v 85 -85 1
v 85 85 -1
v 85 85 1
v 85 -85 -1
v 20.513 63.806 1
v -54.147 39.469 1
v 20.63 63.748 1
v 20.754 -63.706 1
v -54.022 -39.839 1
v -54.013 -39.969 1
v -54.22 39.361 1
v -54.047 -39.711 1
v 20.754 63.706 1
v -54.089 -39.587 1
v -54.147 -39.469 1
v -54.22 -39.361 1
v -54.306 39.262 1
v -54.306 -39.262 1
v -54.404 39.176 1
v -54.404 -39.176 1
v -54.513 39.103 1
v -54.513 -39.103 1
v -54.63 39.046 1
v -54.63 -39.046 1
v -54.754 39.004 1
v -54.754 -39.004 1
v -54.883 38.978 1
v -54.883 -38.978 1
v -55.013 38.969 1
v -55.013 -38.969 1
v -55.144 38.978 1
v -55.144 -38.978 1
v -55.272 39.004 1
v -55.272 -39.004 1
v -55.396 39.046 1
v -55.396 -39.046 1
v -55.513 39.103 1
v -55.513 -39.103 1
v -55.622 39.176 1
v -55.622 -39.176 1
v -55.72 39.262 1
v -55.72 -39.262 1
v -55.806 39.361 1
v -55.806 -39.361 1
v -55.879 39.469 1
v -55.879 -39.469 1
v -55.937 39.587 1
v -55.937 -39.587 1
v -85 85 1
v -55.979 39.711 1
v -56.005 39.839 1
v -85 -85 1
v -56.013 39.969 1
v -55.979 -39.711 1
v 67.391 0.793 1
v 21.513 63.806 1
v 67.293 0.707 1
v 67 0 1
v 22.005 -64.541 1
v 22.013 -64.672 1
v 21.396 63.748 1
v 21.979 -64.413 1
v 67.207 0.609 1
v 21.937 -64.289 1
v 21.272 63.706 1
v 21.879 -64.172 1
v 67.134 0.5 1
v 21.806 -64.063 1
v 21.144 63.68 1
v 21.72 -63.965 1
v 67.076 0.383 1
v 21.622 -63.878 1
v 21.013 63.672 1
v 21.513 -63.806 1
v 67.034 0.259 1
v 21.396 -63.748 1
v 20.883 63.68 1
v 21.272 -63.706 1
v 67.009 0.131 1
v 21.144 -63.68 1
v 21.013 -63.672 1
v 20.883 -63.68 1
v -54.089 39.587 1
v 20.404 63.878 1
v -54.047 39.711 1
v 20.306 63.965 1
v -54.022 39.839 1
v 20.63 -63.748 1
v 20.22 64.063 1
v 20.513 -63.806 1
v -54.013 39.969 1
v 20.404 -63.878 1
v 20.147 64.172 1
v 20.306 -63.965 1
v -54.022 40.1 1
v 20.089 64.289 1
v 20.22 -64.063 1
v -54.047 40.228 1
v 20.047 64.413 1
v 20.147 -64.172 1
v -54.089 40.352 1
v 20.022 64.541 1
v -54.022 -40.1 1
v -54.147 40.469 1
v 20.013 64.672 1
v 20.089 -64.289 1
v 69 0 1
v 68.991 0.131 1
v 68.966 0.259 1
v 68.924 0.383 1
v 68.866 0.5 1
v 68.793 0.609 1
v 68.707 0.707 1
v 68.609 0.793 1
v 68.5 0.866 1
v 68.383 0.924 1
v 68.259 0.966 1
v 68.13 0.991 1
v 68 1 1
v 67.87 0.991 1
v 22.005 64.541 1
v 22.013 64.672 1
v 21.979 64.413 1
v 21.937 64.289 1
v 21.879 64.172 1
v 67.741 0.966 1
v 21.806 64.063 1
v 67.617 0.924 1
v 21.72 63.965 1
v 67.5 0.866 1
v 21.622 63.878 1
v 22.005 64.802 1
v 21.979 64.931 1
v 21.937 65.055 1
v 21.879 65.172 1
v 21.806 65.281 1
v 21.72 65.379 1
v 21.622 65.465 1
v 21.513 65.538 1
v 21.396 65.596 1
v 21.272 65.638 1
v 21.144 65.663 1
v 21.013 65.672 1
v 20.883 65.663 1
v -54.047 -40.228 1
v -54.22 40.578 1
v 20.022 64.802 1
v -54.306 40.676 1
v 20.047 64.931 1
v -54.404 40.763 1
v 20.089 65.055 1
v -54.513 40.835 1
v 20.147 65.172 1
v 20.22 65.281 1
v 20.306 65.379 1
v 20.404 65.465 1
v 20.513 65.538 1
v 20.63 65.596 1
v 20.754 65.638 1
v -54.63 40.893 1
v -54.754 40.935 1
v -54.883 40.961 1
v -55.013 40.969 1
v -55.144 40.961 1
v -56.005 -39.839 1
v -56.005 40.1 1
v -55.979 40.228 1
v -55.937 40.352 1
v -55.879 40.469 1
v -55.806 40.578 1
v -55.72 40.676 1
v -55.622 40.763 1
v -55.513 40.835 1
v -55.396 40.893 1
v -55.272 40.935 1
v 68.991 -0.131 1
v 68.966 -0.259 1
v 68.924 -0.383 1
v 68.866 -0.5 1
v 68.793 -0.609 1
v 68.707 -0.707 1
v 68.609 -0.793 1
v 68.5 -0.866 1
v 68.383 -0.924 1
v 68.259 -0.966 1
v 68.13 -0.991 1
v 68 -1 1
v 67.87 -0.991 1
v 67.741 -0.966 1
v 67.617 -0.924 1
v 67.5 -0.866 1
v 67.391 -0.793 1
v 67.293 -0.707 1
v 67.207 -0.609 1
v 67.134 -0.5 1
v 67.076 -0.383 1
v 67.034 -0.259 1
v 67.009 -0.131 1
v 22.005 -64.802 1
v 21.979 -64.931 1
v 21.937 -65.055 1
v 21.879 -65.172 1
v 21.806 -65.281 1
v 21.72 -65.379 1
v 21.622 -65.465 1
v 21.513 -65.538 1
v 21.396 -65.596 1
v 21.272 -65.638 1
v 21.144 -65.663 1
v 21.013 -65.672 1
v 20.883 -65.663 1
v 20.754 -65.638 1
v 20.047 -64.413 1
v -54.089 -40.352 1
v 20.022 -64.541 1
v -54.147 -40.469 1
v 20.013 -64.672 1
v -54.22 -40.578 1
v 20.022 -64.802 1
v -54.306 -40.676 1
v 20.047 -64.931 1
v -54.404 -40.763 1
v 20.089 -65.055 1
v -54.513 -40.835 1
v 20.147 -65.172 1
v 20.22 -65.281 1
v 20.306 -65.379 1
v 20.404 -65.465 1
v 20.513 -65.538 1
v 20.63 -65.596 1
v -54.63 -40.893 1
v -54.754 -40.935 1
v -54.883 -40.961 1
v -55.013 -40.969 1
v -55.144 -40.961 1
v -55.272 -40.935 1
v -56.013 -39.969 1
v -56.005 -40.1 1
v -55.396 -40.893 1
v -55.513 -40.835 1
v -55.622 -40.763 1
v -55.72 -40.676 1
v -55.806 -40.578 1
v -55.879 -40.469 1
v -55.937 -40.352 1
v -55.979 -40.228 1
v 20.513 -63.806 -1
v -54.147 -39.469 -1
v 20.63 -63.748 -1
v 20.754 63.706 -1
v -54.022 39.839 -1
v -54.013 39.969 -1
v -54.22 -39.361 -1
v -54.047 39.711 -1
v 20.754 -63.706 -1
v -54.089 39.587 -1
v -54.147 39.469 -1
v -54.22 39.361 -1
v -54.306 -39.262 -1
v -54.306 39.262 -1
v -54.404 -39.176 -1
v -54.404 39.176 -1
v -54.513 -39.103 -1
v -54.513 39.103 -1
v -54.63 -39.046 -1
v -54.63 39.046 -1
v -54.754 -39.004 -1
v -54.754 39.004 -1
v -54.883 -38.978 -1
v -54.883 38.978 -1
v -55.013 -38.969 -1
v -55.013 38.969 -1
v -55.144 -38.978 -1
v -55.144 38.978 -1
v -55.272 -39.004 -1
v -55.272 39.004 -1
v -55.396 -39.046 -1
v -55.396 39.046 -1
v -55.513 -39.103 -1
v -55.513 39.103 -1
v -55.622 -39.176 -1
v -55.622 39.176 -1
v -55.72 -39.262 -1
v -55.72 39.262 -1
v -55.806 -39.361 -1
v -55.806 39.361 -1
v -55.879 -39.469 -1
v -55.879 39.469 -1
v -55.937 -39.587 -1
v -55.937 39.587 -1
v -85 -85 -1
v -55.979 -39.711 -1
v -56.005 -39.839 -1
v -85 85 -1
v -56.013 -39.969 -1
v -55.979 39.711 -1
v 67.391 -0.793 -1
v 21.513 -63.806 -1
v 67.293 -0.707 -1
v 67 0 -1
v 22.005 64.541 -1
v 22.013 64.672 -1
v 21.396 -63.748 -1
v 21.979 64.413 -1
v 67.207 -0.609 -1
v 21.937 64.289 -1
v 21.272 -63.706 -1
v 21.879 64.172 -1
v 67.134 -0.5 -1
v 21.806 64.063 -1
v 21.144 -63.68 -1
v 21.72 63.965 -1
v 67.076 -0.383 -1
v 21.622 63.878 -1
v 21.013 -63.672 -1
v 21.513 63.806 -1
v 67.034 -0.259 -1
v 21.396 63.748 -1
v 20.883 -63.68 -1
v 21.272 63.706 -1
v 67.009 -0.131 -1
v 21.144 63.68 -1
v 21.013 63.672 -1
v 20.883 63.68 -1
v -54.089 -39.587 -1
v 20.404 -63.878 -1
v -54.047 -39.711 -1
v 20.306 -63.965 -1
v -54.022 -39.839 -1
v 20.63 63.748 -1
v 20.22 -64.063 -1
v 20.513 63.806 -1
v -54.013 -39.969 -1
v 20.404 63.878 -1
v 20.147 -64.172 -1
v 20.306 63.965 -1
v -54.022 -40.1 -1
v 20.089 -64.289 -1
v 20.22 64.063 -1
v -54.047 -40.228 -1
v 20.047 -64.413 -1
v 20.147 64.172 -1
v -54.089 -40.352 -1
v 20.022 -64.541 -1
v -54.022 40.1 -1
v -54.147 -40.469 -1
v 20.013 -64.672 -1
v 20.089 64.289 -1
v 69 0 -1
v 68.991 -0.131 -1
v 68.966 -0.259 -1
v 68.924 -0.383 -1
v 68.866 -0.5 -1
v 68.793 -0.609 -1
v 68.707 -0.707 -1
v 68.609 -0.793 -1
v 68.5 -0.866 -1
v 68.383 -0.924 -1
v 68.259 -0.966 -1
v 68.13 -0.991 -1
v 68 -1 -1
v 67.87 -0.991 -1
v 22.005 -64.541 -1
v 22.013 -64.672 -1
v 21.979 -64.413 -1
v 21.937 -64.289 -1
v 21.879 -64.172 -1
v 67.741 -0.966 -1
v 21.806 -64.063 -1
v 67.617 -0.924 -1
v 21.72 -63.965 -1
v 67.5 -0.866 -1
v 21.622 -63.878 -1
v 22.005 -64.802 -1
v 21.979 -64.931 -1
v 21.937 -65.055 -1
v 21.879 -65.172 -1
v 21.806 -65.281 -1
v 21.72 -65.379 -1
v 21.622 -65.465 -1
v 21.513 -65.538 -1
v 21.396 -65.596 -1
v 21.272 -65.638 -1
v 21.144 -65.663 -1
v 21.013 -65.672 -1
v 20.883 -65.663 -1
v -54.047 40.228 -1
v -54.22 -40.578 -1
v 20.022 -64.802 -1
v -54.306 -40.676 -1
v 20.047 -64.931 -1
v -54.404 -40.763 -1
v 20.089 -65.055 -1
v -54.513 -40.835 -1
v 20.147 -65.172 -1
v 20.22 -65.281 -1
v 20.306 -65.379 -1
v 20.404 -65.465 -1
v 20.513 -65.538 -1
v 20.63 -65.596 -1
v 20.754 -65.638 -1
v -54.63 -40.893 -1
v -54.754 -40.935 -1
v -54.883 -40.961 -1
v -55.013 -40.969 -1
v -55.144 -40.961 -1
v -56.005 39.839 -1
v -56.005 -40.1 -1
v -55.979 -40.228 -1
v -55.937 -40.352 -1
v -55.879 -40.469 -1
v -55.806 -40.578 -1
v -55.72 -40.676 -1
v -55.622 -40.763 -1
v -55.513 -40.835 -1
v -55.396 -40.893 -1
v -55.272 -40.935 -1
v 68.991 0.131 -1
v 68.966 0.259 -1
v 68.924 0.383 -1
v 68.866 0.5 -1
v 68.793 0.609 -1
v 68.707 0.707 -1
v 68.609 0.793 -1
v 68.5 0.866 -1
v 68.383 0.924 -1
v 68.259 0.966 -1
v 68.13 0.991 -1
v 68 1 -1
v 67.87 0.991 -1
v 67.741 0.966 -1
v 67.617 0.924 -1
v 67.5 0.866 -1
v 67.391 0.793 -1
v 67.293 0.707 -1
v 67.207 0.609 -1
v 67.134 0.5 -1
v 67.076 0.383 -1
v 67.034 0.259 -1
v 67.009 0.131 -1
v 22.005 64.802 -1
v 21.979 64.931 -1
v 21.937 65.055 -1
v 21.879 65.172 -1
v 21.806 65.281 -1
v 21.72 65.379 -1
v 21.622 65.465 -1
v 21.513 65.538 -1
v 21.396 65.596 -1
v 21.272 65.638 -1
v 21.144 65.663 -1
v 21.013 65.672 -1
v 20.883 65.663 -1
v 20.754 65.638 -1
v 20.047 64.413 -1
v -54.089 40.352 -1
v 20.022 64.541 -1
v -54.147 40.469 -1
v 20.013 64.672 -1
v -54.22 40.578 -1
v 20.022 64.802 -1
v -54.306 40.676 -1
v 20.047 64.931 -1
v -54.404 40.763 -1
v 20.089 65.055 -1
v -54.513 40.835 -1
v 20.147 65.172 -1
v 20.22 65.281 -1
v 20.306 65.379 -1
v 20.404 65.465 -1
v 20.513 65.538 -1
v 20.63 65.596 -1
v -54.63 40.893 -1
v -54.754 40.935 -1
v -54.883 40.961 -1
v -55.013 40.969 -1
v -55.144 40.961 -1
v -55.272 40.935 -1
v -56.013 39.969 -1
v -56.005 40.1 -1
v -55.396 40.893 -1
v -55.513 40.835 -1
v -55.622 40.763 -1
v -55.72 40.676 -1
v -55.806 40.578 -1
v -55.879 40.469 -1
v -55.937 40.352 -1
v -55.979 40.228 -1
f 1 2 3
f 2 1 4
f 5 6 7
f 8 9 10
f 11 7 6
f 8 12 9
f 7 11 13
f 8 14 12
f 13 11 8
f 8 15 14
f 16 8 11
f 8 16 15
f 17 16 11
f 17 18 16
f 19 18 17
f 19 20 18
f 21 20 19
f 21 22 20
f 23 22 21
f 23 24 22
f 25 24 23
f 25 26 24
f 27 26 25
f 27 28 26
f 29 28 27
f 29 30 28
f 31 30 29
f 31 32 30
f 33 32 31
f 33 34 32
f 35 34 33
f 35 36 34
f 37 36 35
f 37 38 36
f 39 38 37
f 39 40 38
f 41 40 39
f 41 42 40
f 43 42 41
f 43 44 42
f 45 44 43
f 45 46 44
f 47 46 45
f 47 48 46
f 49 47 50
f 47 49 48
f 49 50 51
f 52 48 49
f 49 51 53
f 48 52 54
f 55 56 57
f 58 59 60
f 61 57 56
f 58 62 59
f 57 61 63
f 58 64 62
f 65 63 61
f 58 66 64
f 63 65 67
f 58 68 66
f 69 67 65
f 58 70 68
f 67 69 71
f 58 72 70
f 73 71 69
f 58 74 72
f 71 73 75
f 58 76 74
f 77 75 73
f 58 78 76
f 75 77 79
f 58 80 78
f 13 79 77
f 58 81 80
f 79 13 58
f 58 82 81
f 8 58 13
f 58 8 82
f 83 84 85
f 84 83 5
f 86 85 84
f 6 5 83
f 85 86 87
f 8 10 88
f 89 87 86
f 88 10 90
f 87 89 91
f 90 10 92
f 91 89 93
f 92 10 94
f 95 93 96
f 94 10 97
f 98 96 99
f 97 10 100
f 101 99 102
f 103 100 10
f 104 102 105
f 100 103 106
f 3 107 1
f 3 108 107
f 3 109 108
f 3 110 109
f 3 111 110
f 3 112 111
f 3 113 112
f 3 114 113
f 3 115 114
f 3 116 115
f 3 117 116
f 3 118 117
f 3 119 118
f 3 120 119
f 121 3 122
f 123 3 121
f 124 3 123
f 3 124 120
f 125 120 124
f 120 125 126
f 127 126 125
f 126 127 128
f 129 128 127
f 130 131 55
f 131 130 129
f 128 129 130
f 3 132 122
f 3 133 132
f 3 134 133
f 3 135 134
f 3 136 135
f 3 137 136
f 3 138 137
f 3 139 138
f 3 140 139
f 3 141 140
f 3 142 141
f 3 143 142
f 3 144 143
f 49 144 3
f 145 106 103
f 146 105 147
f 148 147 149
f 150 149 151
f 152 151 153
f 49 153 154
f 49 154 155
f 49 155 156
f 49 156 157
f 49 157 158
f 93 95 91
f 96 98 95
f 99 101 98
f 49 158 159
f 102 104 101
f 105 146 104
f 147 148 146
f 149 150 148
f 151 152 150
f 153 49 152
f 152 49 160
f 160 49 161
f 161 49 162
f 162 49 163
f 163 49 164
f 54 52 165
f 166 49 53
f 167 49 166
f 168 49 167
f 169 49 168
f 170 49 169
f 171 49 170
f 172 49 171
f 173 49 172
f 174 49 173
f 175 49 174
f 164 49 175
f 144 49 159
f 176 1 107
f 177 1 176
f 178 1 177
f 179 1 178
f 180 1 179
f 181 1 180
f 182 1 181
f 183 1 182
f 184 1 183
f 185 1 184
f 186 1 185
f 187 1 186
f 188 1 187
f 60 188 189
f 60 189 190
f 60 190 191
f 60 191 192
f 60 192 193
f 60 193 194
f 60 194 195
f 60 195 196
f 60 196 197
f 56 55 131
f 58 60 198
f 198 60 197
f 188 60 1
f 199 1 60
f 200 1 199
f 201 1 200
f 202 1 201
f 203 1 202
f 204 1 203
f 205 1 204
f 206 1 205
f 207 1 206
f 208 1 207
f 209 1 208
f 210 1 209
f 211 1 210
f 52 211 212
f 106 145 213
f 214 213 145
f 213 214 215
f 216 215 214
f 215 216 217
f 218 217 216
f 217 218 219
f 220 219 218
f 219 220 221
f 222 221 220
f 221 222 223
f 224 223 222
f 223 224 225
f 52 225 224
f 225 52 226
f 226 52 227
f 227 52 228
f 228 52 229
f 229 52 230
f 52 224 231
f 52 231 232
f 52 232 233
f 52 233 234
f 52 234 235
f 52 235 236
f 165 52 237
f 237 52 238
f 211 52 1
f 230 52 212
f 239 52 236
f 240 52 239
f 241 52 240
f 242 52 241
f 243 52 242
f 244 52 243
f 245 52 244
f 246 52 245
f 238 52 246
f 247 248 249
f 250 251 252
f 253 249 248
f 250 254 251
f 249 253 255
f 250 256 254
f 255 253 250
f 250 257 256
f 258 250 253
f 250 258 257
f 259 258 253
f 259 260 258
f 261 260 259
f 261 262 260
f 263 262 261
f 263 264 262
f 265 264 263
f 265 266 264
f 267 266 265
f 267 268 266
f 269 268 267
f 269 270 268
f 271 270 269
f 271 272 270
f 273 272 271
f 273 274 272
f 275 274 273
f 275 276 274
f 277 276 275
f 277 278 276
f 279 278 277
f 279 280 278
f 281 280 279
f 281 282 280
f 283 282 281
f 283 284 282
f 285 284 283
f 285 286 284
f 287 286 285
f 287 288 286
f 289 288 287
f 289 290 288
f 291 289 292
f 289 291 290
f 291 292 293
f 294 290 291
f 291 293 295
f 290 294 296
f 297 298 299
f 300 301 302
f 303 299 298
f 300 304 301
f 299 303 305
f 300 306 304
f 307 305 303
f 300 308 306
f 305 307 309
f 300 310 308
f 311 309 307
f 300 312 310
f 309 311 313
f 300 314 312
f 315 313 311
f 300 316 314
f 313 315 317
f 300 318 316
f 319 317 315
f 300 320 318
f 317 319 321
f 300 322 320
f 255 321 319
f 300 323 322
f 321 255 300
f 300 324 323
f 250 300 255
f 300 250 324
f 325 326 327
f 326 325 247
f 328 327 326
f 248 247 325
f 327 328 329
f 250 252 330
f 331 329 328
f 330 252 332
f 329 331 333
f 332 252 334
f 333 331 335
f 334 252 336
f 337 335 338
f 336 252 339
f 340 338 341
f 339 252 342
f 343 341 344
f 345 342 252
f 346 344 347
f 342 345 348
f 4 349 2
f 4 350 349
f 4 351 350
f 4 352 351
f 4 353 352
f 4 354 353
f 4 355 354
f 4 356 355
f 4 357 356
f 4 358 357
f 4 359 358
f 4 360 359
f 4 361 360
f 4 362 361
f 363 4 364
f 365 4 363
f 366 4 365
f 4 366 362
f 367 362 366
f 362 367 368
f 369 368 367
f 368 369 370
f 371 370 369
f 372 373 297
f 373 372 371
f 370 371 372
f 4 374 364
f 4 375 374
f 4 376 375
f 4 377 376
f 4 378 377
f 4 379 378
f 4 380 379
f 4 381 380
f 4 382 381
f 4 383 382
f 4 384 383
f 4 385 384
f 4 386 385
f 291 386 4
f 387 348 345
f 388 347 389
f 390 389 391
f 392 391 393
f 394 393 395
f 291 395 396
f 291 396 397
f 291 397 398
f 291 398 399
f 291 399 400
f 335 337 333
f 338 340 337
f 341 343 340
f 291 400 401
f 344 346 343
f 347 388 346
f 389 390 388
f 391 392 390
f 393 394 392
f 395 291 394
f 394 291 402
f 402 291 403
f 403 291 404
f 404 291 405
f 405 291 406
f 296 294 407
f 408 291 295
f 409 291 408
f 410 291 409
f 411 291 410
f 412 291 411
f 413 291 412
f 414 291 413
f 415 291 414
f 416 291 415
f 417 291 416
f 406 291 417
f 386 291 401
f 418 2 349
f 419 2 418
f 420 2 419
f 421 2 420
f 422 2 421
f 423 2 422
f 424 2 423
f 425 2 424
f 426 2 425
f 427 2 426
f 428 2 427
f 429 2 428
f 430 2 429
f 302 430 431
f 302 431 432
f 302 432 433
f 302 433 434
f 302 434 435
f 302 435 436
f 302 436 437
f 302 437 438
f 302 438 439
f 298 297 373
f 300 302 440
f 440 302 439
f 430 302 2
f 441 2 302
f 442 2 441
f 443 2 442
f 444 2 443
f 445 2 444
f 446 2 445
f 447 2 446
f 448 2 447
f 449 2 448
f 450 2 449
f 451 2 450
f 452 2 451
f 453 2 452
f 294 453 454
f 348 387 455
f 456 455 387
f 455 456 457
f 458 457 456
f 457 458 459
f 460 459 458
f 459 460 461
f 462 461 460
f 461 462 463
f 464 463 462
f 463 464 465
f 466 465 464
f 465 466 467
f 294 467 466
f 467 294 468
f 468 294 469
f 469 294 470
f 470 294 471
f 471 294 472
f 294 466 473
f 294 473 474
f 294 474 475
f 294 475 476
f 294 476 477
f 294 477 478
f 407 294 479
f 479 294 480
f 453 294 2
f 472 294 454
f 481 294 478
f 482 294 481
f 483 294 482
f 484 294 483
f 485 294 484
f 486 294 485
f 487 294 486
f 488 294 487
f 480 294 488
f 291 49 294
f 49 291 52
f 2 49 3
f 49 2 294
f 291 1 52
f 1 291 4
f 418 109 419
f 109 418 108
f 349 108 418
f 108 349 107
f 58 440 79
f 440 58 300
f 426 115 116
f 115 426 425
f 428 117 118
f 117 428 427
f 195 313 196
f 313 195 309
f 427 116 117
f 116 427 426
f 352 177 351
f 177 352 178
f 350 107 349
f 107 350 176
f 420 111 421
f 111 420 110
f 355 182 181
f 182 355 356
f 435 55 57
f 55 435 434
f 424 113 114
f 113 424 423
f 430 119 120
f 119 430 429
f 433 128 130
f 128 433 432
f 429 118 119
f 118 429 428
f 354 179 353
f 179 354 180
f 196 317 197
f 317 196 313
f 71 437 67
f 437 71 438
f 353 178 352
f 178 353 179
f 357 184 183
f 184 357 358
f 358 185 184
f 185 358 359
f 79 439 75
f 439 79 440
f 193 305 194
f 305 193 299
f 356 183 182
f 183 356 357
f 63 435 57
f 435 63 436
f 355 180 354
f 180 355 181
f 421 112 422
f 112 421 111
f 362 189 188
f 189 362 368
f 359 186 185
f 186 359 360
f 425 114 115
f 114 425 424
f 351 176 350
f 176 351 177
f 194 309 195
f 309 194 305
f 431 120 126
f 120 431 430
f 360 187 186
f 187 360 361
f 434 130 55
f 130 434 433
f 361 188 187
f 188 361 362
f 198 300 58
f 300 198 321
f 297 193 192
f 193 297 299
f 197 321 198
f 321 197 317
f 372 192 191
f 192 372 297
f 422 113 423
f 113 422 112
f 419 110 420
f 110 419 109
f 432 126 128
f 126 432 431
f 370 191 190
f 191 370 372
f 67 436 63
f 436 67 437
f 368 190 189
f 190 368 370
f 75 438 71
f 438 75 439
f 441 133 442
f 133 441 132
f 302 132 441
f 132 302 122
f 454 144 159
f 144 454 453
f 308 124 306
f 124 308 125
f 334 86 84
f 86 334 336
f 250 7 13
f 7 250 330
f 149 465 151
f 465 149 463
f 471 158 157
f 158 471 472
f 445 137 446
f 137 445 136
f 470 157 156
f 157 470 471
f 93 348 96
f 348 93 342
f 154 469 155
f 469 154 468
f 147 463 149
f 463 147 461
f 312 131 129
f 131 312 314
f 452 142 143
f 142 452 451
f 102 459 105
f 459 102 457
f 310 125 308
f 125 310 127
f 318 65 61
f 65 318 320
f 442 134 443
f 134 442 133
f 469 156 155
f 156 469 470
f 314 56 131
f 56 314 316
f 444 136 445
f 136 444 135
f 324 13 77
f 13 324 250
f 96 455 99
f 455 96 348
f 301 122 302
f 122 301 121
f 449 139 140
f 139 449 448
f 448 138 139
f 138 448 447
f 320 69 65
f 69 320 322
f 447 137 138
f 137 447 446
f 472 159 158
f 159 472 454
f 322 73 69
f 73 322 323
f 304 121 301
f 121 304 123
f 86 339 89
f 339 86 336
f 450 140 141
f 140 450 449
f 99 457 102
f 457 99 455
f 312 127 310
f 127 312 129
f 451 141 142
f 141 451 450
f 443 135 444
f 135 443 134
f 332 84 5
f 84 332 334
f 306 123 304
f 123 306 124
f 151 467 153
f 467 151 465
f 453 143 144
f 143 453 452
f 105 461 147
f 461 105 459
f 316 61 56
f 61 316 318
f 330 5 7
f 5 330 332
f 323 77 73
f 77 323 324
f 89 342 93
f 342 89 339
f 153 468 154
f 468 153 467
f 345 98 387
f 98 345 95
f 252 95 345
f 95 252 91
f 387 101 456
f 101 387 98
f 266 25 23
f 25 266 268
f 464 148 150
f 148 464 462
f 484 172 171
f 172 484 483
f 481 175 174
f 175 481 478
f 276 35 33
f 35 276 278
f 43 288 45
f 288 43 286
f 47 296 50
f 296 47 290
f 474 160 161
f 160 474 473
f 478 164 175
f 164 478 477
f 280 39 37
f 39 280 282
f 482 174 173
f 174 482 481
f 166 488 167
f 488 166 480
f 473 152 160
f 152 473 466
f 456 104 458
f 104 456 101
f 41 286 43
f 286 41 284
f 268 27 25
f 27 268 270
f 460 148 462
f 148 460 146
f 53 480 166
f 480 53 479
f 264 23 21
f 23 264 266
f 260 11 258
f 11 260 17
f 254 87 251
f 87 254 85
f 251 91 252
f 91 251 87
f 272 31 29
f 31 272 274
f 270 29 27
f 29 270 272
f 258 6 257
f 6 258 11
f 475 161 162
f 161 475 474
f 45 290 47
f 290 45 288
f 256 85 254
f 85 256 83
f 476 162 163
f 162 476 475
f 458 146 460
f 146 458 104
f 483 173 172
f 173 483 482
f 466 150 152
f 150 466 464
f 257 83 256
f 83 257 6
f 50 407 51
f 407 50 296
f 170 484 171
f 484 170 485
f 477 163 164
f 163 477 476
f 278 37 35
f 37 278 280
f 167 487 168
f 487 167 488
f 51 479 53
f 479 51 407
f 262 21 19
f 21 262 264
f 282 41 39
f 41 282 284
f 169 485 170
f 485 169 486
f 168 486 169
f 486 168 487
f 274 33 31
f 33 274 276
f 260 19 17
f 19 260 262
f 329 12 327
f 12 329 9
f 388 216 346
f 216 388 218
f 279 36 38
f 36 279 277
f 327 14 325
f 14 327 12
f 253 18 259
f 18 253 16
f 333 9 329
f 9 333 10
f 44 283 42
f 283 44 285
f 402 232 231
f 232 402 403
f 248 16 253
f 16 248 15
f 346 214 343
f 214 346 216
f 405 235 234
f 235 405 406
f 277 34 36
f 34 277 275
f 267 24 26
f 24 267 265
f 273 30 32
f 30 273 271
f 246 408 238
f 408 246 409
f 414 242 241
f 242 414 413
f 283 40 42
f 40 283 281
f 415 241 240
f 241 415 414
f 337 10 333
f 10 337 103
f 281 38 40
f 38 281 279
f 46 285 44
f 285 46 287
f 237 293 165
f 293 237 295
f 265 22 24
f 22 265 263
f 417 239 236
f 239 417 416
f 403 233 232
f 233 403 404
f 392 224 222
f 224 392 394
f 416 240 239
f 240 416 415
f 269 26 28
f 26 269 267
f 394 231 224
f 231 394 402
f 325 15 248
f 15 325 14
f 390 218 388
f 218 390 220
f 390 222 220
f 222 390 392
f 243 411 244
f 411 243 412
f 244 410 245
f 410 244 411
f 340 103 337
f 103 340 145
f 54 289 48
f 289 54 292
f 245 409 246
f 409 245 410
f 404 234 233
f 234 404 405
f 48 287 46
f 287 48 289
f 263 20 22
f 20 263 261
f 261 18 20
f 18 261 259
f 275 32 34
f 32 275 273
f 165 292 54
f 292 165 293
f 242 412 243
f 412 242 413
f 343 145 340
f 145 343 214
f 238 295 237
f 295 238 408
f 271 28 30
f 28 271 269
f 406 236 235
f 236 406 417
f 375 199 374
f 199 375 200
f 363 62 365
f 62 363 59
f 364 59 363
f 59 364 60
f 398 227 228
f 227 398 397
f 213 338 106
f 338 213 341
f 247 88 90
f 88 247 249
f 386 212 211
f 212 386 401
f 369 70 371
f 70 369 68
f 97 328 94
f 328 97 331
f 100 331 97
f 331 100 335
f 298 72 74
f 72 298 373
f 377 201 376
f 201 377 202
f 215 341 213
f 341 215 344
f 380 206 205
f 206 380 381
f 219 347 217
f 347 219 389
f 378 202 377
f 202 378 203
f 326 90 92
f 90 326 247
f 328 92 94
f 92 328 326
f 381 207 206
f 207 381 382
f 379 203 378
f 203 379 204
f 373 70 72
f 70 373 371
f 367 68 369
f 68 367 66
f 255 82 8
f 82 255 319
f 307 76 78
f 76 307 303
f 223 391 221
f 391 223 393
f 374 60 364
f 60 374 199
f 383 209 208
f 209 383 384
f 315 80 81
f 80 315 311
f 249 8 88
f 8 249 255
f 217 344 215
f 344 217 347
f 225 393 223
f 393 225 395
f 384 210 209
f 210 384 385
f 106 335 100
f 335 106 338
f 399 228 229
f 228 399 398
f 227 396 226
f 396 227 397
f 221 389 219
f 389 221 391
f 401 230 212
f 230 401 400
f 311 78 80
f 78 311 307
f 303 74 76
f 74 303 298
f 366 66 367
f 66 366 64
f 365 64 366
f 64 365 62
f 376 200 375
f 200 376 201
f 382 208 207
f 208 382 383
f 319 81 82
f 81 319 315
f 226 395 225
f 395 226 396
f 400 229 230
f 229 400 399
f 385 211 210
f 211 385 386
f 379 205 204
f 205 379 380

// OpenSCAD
// ========================================
// a 170 x 170 x 2 mm plate with five 2 mm holes
// NeuroCAD canonical IR; dimensions are millimetres
// ========================================
$fn = 48;

difference() {
  cube(size=[170, 170, 2], center=true);
  translate([68, 0, 0]) {
    cylinder(r=1, h=4, center=true);
  }
  translate([21.0131556174964, 64.6718431080704, 0]) {
    cylinder(r=1, h=4, center=true);
  }
  translate([-55.0131556174964, 39.9693971558882, 0]) {
    cylinder(r=1, h=4, center=true);
  }
  translate([-55.0131556174964, -39.9693971558882, 0]) {
    cylinder(r=1, h=4, center=true);
  }
  translate([21.0131556174964, -64.6718431080704, 0]) {
    cylinder(r=1, h=4, center=true);
  }
}
